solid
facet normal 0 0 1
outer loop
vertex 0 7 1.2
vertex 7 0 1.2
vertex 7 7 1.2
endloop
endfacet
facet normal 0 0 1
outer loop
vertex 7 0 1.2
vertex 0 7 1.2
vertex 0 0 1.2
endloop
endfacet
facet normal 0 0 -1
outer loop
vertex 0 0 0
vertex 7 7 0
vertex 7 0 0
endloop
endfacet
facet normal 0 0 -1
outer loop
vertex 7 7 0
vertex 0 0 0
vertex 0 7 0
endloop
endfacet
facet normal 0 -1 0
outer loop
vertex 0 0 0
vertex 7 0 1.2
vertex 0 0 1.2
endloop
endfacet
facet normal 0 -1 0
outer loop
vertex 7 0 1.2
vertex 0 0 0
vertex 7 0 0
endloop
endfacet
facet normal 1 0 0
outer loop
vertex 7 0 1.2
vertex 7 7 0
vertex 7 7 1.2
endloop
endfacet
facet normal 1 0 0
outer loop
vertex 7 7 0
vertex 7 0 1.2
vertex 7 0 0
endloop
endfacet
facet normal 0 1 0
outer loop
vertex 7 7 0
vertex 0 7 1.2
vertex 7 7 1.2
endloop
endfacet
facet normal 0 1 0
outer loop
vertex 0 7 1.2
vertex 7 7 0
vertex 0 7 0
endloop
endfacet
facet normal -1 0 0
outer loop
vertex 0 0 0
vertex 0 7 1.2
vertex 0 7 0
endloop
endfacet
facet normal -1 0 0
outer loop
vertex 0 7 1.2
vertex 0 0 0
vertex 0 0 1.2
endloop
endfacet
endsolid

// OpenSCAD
/* Warning, this is a very basic generator with a lot of approximation 
input data : [TFBGA, GJX, 7x7x1.2mm, 100, , A, C04-00320A]
generated by com.zoubworld.electronics.cad.model3d.Basic
Date : Sun Feb 15 10:50:48 CET 2026
*/

//body
color("black")
translate([0,0,0])
cube([7.0,7.0,1.2], center=false);
